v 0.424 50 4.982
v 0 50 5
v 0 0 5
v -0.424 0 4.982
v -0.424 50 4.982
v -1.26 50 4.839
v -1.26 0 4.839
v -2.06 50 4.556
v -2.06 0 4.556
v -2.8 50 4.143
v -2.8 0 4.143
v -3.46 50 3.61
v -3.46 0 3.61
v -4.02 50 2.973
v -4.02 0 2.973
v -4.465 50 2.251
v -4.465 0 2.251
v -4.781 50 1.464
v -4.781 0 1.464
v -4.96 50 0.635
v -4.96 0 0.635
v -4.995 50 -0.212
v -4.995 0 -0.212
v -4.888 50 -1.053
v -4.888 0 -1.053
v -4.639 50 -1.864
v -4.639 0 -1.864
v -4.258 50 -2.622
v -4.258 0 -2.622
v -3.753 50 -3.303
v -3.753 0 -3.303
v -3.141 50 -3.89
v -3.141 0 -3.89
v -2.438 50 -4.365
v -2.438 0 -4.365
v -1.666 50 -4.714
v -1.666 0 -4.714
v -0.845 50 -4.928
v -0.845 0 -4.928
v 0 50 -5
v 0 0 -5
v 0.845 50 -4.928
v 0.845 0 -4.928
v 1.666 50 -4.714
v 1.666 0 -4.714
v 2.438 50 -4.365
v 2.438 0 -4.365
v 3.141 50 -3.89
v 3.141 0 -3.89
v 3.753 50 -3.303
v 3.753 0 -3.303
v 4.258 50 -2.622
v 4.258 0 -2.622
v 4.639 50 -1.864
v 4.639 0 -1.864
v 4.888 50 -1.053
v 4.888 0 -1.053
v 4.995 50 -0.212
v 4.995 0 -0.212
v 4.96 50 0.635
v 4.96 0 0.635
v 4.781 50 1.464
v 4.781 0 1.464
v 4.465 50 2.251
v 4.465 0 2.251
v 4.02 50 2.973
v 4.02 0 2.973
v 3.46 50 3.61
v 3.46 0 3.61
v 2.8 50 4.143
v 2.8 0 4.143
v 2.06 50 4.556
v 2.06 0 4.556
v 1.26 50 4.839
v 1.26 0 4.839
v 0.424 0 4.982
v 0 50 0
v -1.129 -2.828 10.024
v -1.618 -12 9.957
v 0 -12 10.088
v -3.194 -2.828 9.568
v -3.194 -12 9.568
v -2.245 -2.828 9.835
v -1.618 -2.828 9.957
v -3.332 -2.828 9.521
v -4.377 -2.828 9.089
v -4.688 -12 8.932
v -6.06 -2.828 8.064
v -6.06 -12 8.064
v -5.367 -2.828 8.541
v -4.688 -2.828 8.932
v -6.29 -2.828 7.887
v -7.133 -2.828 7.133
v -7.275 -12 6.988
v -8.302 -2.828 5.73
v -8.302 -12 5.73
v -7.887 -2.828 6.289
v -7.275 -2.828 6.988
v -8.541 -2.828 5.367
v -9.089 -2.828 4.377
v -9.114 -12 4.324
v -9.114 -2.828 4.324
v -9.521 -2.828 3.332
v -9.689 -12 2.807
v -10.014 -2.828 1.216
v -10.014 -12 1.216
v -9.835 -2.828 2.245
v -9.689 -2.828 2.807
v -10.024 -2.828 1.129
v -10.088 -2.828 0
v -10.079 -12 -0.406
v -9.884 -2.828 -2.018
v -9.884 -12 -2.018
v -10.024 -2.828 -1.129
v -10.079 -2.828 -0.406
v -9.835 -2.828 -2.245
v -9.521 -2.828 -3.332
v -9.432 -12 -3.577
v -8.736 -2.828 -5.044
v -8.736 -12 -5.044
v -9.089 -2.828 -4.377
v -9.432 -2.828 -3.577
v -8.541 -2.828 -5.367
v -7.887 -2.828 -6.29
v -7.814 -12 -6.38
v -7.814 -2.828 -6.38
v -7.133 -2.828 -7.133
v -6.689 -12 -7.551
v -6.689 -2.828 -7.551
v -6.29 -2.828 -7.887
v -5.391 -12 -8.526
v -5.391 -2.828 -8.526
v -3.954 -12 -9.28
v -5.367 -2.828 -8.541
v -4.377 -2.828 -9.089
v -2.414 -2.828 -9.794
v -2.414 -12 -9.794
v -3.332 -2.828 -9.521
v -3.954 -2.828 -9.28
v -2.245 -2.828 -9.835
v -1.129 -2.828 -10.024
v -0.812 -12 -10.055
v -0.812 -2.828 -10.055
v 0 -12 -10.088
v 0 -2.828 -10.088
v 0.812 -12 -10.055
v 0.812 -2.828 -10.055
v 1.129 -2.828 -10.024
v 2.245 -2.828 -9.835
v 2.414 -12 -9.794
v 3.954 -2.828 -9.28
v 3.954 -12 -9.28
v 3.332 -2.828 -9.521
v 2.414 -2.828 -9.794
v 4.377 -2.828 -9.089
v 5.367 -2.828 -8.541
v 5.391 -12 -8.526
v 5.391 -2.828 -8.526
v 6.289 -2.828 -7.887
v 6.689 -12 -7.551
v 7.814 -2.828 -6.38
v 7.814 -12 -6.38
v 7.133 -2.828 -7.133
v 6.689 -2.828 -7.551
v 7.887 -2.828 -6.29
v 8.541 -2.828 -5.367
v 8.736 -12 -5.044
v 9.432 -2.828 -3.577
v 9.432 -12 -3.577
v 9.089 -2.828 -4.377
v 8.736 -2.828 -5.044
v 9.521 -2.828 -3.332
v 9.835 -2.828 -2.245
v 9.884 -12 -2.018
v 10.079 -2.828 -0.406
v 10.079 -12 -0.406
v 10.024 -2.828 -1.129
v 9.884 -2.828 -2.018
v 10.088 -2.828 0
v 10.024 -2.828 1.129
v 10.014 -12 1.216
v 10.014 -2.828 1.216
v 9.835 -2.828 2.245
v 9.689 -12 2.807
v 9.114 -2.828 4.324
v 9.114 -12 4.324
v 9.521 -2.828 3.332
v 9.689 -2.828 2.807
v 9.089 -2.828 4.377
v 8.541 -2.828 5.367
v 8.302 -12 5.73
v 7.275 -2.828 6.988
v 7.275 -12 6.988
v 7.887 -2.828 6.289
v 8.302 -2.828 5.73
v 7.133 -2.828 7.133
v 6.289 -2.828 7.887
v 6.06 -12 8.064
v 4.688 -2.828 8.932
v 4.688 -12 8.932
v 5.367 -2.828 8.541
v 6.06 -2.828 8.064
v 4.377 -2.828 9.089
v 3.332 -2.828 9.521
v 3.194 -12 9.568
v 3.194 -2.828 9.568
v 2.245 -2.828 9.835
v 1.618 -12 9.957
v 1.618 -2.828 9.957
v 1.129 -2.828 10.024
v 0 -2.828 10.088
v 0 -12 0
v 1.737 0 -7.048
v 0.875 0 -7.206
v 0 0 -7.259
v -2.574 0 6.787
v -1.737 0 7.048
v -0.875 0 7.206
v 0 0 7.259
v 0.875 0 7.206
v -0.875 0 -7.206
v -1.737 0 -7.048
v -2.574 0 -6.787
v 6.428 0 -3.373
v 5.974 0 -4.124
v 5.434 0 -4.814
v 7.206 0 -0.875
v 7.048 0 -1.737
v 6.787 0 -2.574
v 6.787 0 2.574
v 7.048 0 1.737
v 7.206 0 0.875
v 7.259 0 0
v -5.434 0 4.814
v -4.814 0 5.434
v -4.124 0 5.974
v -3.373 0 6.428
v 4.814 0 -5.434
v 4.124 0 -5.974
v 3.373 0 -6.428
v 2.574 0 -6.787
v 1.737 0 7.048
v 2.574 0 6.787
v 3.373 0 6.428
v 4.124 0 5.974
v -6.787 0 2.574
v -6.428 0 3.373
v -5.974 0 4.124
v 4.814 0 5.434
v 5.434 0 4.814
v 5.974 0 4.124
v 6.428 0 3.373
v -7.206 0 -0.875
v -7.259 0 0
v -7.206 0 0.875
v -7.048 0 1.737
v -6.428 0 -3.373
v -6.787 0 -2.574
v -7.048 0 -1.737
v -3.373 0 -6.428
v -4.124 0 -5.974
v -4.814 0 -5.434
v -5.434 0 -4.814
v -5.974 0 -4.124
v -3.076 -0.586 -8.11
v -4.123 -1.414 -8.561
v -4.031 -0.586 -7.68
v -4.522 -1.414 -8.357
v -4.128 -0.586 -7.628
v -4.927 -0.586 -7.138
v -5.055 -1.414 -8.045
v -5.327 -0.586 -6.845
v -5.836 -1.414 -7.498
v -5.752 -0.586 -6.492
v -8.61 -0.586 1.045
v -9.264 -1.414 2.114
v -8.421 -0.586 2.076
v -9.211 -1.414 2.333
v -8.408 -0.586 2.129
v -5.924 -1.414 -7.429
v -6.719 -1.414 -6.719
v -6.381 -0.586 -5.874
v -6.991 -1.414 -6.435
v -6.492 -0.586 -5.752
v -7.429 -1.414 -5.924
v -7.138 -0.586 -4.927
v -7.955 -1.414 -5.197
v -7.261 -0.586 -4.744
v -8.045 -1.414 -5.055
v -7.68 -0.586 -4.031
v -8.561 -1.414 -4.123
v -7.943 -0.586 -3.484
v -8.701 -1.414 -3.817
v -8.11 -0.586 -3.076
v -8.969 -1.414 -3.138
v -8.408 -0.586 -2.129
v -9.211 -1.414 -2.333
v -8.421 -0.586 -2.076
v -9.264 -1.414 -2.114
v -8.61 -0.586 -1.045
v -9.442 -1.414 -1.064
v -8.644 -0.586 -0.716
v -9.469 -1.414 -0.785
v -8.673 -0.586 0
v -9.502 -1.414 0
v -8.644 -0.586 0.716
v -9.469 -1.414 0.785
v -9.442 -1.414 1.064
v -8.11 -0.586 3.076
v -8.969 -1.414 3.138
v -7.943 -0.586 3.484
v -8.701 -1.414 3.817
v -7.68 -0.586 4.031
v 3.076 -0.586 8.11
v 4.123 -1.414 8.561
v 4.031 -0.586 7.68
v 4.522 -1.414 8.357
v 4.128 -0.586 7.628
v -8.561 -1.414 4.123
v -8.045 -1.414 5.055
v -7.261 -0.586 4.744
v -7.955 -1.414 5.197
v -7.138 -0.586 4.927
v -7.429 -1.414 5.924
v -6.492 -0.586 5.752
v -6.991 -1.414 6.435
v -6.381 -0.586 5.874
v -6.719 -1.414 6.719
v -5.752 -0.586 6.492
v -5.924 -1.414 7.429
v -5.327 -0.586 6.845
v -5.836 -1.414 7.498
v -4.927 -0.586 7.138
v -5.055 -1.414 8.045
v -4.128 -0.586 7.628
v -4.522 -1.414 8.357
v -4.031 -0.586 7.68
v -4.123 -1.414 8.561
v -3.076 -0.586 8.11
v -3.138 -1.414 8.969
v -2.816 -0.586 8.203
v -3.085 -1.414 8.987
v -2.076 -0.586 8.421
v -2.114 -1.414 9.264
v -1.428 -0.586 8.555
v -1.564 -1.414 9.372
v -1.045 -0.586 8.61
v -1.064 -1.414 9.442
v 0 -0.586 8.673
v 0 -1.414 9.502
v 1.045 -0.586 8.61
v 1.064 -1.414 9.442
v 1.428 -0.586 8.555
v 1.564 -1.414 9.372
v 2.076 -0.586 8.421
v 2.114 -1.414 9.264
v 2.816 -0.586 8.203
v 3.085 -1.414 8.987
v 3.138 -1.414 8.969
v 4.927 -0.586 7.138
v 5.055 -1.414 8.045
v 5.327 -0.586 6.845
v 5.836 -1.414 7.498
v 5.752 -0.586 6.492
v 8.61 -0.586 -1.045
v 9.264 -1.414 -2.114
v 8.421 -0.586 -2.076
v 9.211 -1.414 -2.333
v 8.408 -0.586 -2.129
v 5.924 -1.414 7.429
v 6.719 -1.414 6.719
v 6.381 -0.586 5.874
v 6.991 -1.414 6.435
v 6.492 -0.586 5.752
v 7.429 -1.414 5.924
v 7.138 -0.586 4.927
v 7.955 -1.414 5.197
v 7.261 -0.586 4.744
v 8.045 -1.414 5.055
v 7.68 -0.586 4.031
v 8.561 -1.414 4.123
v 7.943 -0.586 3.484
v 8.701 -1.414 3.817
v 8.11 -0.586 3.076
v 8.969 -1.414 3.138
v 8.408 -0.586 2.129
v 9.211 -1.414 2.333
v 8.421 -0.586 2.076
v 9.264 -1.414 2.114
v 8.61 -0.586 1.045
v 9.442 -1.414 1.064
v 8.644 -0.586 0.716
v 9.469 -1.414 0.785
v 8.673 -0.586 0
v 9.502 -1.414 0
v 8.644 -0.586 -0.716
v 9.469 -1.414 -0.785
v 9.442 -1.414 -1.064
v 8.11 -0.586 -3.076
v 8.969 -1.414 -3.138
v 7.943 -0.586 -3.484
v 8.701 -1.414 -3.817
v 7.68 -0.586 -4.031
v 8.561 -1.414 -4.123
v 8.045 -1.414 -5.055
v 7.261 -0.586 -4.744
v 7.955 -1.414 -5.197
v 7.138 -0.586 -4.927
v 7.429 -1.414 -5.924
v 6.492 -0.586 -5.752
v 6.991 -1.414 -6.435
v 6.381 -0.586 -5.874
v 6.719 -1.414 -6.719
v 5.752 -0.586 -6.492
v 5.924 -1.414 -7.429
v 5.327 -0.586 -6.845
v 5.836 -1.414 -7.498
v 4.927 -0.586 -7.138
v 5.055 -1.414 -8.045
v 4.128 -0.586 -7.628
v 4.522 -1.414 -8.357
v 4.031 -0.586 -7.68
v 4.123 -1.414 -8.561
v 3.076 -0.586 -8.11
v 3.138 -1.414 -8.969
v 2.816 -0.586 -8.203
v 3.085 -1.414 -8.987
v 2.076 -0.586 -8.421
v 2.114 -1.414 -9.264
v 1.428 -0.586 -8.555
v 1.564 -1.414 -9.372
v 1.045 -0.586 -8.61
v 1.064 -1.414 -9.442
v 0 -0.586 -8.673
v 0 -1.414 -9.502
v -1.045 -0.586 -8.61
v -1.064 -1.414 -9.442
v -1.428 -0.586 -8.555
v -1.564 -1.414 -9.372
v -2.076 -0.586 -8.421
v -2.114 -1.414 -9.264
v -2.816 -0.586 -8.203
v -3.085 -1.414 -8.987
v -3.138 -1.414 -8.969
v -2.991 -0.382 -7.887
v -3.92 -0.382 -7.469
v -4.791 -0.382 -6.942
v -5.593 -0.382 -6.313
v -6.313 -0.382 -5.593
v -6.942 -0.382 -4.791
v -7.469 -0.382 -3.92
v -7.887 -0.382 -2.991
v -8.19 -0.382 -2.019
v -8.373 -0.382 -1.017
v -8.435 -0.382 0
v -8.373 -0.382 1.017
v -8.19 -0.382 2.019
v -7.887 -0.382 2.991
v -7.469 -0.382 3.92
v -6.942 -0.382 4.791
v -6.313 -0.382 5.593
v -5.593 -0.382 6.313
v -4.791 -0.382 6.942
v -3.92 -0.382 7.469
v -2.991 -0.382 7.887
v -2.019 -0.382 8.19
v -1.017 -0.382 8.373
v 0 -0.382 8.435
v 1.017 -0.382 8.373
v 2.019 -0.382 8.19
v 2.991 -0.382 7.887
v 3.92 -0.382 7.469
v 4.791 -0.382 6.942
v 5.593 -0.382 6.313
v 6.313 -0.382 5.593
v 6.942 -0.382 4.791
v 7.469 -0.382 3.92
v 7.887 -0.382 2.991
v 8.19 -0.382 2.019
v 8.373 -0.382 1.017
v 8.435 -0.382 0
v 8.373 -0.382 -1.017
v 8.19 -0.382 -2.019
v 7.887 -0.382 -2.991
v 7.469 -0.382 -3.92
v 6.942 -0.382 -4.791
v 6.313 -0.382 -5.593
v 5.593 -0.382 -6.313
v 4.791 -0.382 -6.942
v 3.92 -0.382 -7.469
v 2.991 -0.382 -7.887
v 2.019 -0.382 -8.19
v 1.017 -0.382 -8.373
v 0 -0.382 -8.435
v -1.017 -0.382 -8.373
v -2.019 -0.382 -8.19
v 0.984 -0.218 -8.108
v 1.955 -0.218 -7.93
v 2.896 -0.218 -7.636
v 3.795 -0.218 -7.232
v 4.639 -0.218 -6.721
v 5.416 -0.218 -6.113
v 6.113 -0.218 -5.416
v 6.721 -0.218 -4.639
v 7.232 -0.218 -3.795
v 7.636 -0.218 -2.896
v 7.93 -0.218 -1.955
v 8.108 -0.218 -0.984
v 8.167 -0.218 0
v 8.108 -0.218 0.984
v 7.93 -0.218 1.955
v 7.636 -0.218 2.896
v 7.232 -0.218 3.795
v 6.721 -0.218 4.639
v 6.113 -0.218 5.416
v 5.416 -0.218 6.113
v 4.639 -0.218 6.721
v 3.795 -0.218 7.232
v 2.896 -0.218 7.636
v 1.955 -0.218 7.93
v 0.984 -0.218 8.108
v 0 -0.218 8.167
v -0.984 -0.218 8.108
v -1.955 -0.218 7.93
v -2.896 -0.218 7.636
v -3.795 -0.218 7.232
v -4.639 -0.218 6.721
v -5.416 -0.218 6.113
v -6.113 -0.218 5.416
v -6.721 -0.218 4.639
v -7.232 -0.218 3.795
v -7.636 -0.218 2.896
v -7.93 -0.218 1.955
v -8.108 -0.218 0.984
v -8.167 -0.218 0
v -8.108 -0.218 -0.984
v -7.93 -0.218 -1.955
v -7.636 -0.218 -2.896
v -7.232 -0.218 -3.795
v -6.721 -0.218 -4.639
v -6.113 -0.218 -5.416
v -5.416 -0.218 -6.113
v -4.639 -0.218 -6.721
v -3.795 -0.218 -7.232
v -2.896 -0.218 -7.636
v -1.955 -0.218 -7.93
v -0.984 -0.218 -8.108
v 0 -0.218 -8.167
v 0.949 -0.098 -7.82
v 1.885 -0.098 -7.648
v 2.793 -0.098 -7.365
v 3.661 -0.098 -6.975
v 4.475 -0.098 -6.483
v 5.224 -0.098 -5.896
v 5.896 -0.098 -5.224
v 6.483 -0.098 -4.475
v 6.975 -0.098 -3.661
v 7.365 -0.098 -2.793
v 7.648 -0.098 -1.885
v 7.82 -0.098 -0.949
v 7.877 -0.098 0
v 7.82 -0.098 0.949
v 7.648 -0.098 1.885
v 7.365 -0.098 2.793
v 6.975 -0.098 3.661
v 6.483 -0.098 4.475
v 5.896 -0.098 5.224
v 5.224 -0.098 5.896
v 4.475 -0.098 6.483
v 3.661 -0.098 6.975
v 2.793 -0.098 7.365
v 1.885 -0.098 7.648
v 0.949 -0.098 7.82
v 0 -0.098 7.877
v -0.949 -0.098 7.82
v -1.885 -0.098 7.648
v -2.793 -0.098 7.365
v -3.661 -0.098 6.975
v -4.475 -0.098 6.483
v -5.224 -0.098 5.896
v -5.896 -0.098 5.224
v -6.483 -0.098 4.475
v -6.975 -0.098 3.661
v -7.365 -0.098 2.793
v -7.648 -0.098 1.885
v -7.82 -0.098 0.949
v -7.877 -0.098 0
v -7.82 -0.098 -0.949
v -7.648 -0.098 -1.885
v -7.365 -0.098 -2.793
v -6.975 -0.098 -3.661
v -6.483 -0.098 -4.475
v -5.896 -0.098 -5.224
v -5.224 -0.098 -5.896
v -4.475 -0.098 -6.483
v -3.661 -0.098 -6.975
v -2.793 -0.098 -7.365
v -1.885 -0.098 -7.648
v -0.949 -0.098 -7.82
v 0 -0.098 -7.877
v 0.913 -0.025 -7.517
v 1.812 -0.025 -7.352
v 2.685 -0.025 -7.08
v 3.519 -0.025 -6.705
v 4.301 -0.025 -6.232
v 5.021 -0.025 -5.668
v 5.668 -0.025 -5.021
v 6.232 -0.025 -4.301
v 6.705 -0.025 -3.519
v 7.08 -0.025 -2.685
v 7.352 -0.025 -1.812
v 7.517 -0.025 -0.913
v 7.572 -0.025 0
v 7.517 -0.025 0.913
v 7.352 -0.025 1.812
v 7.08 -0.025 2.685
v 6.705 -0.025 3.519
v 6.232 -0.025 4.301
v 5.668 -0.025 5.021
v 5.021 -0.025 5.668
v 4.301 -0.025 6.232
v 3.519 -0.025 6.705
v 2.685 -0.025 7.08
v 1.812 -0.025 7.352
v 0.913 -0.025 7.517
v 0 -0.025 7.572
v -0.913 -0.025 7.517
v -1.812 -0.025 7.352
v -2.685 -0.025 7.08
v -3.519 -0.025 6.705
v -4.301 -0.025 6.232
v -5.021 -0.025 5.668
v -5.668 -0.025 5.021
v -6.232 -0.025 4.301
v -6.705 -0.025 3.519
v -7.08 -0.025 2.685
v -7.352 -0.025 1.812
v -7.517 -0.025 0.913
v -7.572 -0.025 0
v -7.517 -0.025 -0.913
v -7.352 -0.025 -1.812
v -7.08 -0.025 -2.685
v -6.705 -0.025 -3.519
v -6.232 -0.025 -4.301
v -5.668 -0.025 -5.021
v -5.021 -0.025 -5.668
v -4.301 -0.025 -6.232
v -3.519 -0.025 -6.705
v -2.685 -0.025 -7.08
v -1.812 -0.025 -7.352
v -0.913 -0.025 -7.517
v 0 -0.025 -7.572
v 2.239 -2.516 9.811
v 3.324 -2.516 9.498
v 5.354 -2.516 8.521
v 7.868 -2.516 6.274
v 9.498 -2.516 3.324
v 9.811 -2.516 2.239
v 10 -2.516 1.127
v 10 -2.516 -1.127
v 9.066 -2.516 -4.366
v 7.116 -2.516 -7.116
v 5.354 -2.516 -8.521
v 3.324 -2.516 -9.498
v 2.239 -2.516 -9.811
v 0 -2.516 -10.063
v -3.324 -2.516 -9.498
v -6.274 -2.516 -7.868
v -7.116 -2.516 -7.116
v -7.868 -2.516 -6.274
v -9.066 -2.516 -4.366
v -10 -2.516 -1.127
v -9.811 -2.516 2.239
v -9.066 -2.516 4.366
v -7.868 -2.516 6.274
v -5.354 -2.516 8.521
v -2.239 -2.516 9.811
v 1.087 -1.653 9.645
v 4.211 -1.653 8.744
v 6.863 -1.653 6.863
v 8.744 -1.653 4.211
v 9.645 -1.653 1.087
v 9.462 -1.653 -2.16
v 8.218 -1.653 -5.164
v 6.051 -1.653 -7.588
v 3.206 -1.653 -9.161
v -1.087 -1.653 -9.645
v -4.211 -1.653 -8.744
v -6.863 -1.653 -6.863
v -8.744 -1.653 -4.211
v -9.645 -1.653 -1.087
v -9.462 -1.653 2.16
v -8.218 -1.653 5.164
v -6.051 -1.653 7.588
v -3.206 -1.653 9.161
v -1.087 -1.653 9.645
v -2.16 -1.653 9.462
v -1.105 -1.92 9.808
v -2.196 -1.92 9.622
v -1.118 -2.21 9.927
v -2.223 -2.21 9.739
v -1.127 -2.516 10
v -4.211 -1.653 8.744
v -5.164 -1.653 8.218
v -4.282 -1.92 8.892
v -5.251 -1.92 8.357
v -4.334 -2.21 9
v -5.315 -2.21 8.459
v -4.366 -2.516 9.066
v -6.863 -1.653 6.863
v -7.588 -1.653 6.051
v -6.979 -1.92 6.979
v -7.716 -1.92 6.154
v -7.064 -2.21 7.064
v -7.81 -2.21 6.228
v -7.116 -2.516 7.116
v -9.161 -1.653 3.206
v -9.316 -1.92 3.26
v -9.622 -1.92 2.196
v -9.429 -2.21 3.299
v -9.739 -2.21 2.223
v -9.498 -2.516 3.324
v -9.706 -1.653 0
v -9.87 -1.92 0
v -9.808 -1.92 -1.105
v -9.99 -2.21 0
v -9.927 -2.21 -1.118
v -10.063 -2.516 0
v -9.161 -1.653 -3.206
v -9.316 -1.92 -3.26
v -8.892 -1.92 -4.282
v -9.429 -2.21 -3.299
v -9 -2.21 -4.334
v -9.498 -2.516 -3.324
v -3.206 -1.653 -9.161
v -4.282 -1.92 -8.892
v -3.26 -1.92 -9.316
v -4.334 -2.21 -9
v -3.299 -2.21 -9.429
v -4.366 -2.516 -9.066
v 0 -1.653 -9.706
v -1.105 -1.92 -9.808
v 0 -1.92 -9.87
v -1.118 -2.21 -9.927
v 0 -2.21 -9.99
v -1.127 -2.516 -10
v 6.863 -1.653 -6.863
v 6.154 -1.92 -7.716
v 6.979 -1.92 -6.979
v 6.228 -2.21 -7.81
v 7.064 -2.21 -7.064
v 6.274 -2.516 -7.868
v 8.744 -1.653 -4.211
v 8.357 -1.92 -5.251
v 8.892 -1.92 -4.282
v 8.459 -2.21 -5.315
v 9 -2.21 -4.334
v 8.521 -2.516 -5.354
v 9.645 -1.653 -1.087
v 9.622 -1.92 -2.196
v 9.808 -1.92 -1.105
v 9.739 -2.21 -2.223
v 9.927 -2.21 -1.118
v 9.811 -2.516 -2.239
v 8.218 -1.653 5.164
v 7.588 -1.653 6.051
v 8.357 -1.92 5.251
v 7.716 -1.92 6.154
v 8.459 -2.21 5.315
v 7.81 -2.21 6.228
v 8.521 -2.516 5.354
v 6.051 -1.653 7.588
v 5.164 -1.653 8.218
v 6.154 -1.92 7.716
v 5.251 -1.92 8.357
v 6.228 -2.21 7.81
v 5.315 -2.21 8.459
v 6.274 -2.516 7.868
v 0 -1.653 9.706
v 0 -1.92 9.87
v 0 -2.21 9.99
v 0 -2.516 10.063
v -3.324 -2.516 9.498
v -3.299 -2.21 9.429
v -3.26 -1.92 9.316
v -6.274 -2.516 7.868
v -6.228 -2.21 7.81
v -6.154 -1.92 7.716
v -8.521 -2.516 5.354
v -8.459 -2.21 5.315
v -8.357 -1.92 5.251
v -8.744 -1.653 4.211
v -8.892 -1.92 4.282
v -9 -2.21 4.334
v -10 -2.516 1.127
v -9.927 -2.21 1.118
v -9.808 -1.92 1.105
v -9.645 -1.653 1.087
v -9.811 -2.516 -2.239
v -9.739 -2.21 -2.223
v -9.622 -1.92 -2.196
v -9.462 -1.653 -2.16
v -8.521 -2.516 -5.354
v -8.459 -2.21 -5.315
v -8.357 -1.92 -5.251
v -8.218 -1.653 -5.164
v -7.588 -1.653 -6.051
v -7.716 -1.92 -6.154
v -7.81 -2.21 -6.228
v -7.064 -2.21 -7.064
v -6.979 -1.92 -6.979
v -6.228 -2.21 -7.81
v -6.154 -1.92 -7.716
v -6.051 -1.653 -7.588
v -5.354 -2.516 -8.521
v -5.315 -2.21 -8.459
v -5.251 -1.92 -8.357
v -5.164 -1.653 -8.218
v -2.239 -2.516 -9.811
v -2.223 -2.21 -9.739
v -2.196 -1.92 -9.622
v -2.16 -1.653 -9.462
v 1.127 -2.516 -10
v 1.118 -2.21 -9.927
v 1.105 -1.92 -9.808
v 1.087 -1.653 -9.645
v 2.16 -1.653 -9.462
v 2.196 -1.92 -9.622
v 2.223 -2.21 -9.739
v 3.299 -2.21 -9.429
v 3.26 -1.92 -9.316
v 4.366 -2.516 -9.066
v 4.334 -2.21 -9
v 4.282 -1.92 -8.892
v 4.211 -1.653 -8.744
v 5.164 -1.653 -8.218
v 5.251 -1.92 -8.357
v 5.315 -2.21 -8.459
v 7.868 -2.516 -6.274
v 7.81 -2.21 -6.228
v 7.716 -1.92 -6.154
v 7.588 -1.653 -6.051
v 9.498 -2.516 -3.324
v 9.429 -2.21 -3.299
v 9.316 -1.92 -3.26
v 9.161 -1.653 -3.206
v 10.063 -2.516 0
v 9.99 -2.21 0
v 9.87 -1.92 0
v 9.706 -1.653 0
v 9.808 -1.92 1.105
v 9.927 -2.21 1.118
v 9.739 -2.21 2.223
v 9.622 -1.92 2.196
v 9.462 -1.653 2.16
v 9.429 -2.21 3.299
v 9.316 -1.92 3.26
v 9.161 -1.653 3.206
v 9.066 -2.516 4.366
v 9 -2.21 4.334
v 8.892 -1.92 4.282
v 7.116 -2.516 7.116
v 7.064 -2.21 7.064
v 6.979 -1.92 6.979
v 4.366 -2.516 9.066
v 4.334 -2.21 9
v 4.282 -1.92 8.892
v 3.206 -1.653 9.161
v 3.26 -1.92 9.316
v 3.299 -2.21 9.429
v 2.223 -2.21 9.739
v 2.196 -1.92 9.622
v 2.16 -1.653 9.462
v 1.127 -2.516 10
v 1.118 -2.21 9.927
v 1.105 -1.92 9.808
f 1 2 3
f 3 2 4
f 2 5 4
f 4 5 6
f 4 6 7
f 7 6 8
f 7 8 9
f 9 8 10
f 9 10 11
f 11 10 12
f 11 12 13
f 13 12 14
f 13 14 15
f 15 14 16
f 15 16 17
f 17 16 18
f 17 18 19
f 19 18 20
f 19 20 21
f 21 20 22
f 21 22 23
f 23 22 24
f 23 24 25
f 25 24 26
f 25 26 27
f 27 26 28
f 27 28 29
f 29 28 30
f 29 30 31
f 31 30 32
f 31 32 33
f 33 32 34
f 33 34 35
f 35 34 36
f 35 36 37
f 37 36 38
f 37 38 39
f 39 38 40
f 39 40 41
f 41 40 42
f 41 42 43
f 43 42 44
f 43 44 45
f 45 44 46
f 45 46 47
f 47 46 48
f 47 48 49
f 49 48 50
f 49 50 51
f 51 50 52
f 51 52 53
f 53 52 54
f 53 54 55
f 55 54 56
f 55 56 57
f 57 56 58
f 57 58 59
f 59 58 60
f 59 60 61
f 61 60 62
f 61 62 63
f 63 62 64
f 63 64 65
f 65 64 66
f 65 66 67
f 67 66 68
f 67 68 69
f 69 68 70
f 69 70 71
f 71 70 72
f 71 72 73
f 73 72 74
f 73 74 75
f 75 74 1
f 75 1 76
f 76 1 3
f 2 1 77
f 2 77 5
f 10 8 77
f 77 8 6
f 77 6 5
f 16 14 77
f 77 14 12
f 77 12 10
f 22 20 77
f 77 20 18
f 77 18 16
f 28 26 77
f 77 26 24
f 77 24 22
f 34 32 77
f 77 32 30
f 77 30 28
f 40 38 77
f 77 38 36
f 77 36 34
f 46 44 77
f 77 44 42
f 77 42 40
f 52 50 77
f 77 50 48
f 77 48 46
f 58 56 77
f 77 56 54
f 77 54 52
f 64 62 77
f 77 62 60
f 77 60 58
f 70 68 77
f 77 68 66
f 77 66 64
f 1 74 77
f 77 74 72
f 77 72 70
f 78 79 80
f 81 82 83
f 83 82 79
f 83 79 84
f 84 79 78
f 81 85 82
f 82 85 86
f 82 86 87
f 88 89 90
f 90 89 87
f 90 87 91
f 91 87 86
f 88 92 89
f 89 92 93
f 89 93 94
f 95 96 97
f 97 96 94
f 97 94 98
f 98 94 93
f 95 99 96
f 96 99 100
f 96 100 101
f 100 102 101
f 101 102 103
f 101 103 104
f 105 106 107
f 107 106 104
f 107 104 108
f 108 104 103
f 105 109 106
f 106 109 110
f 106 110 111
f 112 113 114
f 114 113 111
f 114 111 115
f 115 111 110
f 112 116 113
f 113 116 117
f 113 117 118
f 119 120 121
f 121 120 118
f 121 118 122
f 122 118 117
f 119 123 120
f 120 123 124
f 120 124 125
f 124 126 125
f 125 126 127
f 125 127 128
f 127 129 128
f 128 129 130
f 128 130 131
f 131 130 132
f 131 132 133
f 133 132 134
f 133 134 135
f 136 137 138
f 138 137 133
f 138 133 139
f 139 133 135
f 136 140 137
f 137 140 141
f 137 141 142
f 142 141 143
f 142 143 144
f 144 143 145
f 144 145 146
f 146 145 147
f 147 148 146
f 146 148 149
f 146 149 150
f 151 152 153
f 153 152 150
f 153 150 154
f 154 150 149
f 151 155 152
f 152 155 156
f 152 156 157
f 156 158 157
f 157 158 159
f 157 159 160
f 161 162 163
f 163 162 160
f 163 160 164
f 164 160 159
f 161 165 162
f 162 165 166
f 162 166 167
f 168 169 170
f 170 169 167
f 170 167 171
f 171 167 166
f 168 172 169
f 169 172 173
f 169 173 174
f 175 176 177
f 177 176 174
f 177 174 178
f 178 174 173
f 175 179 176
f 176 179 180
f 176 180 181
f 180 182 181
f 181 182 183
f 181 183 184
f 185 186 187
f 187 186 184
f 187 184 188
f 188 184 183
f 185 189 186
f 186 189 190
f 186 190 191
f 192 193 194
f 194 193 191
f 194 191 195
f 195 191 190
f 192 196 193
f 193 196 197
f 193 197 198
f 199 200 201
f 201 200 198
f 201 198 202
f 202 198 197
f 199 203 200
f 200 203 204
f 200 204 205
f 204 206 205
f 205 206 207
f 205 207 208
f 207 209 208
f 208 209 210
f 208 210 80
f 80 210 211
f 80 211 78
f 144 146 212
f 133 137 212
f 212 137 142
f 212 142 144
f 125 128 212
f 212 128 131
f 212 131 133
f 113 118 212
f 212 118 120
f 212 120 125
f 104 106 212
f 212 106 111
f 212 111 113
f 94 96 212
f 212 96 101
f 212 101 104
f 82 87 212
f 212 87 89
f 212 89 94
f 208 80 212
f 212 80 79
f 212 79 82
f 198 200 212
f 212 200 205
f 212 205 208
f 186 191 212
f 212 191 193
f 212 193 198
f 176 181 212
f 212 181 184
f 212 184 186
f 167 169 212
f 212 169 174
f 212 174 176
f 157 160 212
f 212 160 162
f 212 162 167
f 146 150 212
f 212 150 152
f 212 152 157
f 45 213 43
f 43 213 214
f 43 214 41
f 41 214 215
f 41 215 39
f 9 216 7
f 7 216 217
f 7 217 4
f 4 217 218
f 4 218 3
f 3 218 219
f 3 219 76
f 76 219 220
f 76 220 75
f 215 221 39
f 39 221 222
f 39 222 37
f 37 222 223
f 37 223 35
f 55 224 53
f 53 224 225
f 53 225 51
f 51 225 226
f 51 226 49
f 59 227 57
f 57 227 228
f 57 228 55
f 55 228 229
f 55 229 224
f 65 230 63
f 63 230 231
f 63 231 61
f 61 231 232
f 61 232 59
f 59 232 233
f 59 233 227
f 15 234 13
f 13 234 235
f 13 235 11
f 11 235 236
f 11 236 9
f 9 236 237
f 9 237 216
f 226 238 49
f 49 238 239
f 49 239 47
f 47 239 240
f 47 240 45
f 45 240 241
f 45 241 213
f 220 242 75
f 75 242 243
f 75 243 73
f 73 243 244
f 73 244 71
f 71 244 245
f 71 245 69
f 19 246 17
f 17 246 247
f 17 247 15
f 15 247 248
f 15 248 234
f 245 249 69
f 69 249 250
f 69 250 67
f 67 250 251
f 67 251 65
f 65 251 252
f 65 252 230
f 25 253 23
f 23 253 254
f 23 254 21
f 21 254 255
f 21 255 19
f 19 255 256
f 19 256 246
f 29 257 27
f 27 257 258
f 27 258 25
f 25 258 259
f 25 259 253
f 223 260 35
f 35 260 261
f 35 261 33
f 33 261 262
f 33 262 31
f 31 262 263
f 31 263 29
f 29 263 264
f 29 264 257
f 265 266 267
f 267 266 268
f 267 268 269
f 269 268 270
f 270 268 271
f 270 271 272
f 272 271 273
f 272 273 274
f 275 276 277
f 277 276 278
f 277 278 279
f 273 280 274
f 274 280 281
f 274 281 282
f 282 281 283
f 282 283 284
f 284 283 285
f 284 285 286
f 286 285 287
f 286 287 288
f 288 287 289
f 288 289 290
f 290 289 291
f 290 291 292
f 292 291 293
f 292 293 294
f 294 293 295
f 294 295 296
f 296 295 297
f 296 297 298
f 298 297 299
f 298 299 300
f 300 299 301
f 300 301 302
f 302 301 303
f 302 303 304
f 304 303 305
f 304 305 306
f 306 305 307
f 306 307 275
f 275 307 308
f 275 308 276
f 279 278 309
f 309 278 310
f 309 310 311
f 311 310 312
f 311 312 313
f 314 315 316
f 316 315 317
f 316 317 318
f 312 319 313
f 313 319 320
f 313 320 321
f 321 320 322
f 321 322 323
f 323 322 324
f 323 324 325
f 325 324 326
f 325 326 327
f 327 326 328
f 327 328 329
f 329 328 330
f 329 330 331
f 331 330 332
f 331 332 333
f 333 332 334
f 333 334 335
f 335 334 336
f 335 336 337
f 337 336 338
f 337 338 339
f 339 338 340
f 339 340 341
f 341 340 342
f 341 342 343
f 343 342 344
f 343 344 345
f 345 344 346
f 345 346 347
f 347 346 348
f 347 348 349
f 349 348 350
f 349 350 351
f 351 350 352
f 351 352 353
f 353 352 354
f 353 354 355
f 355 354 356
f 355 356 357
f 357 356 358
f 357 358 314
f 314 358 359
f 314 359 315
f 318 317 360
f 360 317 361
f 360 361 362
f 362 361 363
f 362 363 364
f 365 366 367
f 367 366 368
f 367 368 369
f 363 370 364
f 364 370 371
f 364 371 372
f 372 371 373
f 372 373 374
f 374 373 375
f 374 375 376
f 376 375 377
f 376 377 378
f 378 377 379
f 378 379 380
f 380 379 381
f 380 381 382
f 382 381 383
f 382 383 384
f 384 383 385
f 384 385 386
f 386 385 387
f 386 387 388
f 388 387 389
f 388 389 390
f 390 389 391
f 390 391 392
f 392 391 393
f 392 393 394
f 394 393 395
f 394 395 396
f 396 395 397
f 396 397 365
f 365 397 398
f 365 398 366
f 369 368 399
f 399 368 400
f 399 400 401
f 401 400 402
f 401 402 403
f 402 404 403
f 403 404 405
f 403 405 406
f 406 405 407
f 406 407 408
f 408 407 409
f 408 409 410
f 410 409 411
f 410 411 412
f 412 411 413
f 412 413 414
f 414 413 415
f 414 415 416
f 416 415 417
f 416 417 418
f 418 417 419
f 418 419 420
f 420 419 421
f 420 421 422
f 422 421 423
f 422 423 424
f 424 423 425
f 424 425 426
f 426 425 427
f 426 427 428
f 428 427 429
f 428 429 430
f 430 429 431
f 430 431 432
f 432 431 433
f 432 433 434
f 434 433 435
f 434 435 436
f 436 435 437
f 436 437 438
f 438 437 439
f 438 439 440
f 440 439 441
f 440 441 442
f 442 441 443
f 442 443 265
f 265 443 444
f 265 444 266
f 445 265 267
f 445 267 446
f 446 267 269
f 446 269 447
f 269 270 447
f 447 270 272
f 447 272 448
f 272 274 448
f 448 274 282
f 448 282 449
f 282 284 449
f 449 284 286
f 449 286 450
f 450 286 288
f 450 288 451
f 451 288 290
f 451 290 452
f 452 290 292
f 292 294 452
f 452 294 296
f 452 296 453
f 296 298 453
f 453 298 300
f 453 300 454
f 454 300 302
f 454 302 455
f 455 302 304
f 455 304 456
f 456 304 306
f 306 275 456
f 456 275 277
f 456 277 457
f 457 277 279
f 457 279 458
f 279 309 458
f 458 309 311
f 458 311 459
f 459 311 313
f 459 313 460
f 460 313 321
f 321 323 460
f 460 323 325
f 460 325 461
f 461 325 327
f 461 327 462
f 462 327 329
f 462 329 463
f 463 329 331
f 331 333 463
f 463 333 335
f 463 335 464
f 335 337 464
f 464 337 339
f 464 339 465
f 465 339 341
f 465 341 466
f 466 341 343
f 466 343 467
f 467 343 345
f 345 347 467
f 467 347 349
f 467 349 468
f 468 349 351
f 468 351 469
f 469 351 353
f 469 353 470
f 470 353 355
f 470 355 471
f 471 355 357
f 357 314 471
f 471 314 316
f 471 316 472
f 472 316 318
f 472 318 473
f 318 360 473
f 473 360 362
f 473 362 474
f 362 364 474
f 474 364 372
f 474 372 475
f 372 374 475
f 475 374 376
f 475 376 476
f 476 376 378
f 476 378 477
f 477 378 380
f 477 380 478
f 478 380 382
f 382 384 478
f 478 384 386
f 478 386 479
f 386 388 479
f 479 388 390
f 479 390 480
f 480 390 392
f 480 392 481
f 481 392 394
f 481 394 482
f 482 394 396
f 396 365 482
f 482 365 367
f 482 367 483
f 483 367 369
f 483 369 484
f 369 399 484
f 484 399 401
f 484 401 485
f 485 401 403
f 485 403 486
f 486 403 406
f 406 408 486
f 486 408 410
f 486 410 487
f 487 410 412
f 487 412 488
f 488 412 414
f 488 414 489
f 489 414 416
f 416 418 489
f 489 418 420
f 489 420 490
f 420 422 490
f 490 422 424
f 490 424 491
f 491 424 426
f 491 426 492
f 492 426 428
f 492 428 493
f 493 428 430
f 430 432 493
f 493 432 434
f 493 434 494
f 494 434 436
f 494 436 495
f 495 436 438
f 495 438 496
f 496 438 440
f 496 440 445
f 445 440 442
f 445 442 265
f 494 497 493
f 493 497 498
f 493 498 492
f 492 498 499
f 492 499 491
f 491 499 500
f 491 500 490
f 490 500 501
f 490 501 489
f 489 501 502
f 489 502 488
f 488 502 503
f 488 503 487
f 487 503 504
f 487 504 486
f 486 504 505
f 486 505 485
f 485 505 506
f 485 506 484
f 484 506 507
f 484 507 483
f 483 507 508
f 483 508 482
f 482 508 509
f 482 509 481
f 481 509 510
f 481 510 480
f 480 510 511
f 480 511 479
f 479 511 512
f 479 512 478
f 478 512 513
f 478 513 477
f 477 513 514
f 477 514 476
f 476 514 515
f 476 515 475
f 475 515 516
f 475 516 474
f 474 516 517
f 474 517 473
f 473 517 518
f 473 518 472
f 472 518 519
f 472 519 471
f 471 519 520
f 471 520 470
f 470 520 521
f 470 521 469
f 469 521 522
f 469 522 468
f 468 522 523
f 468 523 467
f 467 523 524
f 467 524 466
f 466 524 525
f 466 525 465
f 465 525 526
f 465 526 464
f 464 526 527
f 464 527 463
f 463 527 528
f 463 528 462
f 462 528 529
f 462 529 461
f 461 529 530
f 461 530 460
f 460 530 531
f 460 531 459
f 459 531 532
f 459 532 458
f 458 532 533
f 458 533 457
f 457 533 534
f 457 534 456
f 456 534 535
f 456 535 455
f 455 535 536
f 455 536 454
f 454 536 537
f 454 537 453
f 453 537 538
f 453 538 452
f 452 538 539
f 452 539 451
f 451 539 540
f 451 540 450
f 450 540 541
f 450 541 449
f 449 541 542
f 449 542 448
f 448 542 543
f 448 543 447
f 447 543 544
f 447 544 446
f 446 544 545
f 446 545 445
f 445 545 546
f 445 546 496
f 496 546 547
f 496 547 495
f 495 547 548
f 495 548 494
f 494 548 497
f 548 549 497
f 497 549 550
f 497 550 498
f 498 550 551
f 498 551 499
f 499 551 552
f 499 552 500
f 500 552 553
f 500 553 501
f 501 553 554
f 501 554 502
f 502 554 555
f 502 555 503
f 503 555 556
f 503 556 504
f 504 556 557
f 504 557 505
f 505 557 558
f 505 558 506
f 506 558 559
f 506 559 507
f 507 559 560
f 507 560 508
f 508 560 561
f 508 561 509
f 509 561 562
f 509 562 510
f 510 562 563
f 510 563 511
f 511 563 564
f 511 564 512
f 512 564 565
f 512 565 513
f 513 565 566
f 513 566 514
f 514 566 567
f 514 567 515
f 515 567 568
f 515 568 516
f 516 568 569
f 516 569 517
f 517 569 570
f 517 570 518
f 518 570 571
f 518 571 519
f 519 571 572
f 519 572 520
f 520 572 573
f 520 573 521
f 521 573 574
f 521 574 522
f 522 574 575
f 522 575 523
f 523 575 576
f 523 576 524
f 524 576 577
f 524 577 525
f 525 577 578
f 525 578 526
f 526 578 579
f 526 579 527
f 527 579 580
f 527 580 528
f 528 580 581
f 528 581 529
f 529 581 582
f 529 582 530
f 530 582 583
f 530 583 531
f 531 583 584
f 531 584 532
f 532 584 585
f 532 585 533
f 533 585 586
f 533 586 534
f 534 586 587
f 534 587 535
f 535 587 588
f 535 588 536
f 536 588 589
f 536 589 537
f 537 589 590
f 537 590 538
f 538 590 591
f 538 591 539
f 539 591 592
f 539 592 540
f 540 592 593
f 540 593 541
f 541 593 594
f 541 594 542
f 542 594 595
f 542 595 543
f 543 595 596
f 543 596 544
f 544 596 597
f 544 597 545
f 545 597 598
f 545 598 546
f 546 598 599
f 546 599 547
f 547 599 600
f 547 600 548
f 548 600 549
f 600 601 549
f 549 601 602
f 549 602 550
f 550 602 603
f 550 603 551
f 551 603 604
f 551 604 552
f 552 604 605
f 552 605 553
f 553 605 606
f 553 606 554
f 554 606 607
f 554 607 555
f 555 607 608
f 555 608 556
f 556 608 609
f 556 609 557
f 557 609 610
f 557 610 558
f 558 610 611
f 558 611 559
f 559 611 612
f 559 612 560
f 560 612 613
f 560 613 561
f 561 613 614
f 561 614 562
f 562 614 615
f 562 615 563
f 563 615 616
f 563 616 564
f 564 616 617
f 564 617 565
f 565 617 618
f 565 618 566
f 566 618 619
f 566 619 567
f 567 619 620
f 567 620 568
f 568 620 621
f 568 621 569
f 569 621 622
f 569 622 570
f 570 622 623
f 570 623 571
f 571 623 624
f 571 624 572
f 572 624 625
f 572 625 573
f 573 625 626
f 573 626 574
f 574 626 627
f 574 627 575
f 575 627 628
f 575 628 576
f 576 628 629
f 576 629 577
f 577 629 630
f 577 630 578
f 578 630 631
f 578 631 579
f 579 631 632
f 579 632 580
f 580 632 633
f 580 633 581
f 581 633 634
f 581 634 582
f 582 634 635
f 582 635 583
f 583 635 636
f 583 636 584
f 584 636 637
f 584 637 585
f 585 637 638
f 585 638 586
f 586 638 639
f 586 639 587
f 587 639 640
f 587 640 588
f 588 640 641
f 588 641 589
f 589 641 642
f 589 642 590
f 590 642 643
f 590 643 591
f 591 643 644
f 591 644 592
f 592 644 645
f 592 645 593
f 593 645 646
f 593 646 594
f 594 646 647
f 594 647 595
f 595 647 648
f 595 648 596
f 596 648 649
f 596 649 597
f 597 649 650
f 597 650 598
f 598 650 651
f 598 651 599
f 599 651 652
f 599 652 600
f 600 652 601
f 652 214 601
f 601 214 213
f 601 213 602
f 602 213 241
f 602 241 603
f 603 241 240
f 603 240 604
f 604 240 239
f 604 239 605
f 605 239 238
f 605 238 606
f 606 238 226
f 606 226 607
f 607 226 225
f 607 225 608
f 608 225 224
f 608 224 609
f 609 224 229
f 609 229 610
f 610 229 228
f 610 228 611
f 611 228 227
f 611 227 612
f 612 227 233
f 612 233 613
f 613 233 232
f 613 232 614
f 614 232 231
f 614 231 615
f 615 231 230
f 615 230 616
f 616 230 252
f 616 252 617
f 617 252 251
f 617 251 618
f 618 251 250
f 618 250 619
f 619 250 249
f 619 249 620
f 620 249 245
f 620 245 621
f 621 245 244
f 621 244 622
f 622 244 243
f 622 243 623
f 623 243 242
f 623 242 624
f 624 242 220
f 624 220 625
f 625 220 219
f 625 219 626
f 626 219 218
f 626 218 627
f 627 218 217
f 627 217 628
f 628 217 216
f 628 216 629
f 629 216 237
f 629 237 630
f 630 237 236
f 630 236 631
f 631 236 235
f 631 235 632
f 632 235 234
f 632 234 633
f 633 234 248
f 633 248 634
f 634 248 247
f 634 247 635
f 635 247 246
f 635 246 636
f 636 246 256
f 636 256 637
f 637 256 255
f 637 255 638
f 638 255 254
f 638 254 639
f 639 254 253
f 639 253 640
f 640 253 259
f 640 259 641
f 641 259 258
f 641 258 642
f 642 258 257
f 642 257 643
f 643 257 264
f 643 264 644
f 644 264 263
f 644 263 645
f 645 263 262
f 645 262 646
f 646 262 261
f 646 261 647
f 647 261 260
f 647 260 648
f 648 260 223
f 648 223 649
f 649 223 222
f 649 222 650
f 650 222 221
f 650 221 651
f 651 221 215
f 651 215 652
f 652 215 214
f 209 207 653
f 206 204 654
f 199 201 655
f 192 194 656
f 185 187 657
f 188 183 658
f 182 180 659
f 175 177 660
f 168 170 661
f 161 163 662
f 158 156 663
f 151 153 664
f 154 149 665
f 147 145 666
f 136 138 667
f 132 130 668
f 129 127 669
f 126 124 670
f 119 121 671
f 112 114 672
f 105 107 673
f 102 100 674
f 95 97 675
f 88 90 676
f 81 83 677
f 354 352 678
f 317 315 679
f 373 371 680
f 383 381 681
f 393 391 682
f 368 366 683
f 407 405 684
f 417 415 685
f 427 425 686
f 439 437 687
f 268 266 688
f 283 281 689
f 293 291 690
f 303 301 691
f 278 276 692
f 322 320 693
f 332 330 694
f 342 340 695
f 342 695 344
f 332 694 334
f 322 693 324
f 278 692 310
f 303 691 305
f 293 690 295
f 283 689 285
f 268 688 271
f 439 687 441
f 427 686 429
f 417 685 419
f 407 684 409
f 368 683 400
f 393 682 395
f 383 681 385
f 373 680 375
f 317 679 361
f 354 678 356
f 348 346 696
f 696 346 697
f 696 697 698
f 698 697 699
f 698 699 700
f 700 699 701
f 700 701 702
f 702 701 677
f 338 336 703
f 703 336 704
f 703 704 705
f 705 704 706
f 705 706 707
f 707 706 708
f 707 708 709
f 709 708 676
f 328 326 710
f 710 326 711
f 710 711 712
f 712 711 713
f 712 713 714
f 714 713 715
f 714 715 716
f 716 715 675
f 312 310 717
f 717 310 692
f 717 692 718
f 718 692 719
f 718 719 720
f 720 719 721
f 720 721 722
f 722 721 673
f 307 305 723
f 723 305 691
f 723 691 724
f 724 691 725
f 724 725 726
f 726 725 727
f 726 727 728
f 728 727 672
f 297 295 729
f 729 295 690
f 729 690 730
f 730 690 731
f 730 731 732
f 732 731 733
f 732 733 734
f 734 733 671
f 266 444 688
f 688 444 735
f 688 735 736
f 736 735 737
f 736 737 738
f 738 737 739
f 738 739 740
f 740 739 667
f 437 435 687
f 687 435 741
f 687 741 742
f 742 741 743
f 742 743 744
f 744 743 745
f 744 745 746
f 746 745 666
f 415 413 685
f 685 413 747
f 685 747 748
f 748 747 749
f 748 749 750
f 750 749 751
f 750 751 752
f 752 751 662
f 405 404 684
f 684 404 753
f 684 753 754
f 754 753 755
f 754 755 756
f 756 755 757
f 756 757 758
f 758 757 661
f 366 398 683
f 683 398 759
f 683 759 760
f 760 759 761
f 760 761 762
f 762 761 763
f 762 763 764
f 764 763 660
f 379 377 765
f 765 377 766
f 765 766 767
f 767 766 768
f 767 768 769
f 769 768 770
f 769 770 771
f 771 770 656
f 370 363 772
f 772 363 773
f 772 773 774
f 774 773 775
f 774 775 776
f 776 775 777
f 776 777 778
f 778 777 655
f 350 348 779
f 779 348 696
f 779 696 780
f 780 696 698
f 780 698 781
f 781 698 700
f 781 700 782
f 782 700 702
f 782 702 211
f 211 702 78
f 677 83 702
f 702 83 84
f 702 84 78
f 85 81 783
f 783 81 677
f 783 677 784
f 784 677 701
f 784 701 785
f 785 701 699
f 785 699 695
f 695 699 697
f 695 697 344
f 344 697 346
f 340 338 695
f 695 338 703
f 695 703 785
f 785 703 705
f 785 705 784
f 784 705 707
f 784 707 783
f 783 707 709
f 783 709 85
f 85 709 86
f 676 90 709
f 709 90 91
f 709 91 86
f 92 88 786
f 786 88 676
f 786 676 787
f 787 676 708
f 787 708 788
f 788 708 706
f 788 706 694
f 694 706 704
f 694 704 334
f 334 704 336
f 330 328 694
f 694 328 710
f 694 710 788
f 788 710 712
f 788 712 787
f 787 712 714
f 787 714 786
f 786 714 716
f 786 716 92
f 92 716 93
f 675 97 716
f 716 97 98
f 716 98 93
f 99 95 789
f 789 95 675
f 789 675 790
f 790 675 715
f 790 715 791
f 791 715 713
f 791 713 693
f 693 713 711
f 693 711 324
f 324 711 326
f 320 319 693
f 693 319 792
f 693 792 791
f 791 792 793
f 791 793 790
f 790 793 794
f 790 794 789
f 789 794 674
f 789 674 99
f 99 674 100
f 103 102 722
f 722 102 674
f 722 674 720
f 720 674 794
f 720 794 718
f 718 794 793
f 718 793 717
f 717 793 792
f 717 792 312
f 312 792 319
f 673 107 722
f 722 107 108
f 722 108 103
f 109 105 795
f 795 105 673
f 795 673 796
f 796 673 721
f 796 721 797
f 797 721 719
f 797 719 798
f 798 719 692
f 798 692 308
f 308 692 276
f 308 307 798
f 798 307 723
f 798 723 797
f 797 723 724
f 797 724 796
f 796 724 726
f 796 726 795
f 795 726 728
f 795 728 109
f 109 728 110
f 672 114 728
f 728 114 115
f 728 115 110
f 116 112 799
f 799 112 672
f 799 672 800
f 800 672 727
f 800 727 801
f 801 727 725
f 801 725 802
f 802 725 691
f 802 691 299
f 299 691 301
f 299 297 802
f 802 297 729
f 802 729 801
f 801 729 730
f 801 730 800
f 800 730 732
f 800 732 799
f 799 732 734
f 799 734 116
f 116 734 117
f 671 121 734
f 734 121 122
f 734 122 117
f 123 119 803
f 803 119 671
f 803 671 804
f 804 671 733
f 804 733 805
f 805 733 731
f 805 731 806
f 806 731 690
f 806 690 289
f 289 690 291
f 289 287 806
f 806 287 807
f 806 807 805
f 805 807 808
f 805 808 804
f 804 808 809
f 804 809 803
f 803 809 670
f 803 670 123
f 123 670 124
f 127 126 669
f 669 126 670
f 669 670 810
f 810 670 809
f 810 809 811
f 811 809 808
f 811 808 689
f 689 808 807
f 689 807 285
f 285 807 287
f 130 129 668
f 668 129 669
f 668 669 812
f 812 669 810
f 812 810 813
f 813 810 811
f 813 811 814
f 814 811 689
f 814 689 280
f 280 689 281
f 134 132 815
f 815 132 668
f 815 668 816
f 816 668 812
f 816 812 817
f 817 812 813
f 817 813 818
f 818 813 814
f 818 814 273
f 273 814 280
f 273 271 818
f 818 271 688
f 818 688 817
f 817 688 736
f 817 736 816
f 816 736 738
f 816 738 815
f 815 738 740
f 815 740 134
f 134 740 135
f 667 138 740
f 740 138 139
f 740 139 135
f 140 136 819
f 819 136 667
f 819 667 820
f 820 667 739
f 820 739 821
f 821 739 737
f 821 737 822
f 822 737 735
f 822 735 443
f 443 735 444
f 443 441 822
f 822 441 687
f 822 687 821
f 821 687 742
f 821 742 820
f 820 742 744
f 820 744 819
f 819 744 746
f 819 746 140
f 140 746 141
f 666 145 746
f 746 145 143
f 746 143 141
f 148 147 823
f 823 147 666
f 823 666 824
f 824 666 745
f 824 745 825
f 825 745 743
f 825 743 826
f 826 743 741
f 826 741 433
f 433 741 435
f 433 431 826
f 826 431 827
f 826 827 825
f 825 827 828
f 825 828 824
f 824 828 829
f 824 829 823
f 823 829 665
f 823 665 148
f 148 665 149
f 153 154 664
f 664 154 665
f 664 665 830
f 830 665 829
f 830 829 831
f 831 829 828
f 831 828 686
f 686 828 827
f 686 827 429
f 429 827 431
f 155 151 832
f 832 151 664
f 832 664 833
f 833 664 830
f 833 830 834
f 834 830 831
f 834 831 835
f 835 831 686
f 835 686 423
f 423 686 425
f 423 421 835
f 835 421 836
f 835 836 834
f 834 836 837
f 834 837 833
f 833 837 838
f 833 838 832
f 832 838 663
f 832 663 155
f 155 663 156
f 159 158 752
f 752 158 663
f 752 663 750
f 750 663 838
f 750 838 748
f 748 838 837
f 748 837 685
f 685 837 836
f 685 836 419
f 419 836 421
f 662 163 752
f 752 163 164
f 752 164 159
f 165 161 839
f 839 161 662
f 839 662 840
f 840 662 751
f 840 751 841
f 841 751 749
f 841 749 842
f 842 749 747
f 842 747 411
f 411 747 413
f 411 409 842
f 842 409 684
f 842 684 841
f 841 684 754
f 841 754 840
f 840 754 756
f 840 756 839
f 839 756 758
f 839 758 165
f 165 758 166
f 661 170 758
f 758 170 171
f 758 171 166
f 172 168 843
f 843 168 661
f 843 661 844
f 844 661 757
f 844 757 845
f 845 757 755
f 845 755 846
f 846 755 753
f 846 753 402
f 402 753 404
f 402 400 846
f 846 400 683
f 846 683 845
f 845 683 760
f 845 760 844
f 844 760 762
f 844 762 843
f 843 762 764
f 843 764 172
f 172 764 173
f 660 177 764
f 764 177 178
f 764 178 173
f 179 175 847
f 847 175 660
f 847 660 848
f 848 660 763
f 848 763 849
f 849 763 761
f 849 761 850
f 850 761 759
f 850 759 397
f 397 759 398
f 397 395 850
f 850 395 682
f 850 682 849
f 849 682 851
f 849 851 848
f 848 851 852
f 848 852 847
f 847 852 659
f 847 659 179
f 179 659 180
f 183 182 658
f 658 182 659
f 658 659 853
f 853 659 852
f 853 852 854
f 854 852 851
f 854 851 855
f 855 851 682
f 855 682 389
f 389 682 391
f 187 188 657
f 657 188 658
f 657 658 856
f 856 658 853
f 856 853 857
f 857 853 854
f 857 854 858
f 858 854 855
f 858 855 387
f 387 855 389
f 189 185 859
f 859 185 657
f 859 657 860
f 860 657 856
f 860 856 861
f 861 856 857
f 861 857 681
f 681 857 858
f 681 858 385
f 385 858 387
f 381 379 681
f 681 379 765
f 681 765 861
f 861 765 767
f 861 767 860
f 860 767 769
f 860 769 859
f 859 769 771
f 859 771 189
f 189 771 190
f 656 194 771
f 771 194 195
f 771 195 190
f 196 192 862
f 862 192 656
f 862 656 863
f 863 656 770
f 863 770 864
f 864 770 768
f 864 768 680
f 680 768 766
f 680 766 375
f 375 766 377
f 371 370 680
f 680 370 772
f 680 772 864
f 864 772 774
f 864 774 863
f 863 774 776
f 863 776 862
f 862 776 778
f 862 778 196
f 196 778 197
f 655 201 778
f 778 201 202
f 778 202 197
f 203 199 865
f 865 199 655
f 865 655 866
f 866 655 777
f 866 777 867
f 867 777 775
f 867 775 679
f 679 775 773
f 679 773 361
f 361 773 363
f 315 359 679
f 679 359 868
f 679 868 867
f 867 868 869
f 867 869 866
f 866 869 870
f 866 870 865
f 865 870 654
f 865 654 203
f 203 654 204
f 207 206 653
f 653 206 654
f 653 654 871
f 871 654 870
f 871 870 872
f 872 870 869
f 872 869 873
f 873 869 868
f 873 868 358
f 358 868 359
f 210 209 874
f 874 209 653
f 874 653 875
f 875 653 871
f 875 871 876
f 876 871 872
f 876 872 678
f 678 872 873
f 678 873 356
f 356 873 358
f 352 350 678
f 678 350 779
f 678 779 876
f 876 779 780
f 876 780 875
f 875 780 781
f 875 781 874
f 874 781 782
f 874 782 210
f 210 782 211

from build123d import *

# Parameters (mm, degrees)
SKETCH2_R           = 5
BOSS_EXTRUDE1_DEPTH = 50
SKETCH3_R           = 10.087575419
BOSS_EXTRUDE2_DEPTH = 12
CHAMFER1_SIZE       = 2
FILLET2_R           = 2
FILLET3_R           = 2


with BuildPart() as part:
    # Sketch2 → Boss-Extrude1 (new body)
    with BuildSketch(Plane(origin=(0, 0, 0), x_dir=(1, 0, 0), z_dir=(0, 1, 0))):
        with Locations(Location((0, 0, 0), (0, 0, 270))):
            Circle(SKETCH2_R)
    extrude(amount=BOSS_EXTRUDE1_DEPTH)

    # Sketch3 → Boss-Extrude2 (add)
    with BuildSketch(Plane.XZ):
        with Locations(Location((0, 0, 0), (0, 0, 270))):
            Circle(SKETCH3_R)
    extrude(amount=BOSS_EXTRUDE2_DEPTH)

    # Chamfer1
    chamfer1_edges = [part.edges().sort_by_distance(p)[0] for p in [
        (0, 0, 10.087575419),
    ]]
    chamfer(chamfer1_edges, length=CHAMFER1_SIZE)

    # Fillet2
    fillet2_edges = [part.edges().sort_by_distance(p)[0] for p in [
        (0, 0, 8.087575419),
    ]]
    fillet(fillet2_edges, radius=FILLET2_R)

    # Fillet3
    fillet3_edges = [part.edges().sort_by_distance(p)[0] for p in [
        (0, -2, 10.087575419),
    ]]
    fillet(fillet3_edges, radius=FILLET3_R)


solid = part.part
